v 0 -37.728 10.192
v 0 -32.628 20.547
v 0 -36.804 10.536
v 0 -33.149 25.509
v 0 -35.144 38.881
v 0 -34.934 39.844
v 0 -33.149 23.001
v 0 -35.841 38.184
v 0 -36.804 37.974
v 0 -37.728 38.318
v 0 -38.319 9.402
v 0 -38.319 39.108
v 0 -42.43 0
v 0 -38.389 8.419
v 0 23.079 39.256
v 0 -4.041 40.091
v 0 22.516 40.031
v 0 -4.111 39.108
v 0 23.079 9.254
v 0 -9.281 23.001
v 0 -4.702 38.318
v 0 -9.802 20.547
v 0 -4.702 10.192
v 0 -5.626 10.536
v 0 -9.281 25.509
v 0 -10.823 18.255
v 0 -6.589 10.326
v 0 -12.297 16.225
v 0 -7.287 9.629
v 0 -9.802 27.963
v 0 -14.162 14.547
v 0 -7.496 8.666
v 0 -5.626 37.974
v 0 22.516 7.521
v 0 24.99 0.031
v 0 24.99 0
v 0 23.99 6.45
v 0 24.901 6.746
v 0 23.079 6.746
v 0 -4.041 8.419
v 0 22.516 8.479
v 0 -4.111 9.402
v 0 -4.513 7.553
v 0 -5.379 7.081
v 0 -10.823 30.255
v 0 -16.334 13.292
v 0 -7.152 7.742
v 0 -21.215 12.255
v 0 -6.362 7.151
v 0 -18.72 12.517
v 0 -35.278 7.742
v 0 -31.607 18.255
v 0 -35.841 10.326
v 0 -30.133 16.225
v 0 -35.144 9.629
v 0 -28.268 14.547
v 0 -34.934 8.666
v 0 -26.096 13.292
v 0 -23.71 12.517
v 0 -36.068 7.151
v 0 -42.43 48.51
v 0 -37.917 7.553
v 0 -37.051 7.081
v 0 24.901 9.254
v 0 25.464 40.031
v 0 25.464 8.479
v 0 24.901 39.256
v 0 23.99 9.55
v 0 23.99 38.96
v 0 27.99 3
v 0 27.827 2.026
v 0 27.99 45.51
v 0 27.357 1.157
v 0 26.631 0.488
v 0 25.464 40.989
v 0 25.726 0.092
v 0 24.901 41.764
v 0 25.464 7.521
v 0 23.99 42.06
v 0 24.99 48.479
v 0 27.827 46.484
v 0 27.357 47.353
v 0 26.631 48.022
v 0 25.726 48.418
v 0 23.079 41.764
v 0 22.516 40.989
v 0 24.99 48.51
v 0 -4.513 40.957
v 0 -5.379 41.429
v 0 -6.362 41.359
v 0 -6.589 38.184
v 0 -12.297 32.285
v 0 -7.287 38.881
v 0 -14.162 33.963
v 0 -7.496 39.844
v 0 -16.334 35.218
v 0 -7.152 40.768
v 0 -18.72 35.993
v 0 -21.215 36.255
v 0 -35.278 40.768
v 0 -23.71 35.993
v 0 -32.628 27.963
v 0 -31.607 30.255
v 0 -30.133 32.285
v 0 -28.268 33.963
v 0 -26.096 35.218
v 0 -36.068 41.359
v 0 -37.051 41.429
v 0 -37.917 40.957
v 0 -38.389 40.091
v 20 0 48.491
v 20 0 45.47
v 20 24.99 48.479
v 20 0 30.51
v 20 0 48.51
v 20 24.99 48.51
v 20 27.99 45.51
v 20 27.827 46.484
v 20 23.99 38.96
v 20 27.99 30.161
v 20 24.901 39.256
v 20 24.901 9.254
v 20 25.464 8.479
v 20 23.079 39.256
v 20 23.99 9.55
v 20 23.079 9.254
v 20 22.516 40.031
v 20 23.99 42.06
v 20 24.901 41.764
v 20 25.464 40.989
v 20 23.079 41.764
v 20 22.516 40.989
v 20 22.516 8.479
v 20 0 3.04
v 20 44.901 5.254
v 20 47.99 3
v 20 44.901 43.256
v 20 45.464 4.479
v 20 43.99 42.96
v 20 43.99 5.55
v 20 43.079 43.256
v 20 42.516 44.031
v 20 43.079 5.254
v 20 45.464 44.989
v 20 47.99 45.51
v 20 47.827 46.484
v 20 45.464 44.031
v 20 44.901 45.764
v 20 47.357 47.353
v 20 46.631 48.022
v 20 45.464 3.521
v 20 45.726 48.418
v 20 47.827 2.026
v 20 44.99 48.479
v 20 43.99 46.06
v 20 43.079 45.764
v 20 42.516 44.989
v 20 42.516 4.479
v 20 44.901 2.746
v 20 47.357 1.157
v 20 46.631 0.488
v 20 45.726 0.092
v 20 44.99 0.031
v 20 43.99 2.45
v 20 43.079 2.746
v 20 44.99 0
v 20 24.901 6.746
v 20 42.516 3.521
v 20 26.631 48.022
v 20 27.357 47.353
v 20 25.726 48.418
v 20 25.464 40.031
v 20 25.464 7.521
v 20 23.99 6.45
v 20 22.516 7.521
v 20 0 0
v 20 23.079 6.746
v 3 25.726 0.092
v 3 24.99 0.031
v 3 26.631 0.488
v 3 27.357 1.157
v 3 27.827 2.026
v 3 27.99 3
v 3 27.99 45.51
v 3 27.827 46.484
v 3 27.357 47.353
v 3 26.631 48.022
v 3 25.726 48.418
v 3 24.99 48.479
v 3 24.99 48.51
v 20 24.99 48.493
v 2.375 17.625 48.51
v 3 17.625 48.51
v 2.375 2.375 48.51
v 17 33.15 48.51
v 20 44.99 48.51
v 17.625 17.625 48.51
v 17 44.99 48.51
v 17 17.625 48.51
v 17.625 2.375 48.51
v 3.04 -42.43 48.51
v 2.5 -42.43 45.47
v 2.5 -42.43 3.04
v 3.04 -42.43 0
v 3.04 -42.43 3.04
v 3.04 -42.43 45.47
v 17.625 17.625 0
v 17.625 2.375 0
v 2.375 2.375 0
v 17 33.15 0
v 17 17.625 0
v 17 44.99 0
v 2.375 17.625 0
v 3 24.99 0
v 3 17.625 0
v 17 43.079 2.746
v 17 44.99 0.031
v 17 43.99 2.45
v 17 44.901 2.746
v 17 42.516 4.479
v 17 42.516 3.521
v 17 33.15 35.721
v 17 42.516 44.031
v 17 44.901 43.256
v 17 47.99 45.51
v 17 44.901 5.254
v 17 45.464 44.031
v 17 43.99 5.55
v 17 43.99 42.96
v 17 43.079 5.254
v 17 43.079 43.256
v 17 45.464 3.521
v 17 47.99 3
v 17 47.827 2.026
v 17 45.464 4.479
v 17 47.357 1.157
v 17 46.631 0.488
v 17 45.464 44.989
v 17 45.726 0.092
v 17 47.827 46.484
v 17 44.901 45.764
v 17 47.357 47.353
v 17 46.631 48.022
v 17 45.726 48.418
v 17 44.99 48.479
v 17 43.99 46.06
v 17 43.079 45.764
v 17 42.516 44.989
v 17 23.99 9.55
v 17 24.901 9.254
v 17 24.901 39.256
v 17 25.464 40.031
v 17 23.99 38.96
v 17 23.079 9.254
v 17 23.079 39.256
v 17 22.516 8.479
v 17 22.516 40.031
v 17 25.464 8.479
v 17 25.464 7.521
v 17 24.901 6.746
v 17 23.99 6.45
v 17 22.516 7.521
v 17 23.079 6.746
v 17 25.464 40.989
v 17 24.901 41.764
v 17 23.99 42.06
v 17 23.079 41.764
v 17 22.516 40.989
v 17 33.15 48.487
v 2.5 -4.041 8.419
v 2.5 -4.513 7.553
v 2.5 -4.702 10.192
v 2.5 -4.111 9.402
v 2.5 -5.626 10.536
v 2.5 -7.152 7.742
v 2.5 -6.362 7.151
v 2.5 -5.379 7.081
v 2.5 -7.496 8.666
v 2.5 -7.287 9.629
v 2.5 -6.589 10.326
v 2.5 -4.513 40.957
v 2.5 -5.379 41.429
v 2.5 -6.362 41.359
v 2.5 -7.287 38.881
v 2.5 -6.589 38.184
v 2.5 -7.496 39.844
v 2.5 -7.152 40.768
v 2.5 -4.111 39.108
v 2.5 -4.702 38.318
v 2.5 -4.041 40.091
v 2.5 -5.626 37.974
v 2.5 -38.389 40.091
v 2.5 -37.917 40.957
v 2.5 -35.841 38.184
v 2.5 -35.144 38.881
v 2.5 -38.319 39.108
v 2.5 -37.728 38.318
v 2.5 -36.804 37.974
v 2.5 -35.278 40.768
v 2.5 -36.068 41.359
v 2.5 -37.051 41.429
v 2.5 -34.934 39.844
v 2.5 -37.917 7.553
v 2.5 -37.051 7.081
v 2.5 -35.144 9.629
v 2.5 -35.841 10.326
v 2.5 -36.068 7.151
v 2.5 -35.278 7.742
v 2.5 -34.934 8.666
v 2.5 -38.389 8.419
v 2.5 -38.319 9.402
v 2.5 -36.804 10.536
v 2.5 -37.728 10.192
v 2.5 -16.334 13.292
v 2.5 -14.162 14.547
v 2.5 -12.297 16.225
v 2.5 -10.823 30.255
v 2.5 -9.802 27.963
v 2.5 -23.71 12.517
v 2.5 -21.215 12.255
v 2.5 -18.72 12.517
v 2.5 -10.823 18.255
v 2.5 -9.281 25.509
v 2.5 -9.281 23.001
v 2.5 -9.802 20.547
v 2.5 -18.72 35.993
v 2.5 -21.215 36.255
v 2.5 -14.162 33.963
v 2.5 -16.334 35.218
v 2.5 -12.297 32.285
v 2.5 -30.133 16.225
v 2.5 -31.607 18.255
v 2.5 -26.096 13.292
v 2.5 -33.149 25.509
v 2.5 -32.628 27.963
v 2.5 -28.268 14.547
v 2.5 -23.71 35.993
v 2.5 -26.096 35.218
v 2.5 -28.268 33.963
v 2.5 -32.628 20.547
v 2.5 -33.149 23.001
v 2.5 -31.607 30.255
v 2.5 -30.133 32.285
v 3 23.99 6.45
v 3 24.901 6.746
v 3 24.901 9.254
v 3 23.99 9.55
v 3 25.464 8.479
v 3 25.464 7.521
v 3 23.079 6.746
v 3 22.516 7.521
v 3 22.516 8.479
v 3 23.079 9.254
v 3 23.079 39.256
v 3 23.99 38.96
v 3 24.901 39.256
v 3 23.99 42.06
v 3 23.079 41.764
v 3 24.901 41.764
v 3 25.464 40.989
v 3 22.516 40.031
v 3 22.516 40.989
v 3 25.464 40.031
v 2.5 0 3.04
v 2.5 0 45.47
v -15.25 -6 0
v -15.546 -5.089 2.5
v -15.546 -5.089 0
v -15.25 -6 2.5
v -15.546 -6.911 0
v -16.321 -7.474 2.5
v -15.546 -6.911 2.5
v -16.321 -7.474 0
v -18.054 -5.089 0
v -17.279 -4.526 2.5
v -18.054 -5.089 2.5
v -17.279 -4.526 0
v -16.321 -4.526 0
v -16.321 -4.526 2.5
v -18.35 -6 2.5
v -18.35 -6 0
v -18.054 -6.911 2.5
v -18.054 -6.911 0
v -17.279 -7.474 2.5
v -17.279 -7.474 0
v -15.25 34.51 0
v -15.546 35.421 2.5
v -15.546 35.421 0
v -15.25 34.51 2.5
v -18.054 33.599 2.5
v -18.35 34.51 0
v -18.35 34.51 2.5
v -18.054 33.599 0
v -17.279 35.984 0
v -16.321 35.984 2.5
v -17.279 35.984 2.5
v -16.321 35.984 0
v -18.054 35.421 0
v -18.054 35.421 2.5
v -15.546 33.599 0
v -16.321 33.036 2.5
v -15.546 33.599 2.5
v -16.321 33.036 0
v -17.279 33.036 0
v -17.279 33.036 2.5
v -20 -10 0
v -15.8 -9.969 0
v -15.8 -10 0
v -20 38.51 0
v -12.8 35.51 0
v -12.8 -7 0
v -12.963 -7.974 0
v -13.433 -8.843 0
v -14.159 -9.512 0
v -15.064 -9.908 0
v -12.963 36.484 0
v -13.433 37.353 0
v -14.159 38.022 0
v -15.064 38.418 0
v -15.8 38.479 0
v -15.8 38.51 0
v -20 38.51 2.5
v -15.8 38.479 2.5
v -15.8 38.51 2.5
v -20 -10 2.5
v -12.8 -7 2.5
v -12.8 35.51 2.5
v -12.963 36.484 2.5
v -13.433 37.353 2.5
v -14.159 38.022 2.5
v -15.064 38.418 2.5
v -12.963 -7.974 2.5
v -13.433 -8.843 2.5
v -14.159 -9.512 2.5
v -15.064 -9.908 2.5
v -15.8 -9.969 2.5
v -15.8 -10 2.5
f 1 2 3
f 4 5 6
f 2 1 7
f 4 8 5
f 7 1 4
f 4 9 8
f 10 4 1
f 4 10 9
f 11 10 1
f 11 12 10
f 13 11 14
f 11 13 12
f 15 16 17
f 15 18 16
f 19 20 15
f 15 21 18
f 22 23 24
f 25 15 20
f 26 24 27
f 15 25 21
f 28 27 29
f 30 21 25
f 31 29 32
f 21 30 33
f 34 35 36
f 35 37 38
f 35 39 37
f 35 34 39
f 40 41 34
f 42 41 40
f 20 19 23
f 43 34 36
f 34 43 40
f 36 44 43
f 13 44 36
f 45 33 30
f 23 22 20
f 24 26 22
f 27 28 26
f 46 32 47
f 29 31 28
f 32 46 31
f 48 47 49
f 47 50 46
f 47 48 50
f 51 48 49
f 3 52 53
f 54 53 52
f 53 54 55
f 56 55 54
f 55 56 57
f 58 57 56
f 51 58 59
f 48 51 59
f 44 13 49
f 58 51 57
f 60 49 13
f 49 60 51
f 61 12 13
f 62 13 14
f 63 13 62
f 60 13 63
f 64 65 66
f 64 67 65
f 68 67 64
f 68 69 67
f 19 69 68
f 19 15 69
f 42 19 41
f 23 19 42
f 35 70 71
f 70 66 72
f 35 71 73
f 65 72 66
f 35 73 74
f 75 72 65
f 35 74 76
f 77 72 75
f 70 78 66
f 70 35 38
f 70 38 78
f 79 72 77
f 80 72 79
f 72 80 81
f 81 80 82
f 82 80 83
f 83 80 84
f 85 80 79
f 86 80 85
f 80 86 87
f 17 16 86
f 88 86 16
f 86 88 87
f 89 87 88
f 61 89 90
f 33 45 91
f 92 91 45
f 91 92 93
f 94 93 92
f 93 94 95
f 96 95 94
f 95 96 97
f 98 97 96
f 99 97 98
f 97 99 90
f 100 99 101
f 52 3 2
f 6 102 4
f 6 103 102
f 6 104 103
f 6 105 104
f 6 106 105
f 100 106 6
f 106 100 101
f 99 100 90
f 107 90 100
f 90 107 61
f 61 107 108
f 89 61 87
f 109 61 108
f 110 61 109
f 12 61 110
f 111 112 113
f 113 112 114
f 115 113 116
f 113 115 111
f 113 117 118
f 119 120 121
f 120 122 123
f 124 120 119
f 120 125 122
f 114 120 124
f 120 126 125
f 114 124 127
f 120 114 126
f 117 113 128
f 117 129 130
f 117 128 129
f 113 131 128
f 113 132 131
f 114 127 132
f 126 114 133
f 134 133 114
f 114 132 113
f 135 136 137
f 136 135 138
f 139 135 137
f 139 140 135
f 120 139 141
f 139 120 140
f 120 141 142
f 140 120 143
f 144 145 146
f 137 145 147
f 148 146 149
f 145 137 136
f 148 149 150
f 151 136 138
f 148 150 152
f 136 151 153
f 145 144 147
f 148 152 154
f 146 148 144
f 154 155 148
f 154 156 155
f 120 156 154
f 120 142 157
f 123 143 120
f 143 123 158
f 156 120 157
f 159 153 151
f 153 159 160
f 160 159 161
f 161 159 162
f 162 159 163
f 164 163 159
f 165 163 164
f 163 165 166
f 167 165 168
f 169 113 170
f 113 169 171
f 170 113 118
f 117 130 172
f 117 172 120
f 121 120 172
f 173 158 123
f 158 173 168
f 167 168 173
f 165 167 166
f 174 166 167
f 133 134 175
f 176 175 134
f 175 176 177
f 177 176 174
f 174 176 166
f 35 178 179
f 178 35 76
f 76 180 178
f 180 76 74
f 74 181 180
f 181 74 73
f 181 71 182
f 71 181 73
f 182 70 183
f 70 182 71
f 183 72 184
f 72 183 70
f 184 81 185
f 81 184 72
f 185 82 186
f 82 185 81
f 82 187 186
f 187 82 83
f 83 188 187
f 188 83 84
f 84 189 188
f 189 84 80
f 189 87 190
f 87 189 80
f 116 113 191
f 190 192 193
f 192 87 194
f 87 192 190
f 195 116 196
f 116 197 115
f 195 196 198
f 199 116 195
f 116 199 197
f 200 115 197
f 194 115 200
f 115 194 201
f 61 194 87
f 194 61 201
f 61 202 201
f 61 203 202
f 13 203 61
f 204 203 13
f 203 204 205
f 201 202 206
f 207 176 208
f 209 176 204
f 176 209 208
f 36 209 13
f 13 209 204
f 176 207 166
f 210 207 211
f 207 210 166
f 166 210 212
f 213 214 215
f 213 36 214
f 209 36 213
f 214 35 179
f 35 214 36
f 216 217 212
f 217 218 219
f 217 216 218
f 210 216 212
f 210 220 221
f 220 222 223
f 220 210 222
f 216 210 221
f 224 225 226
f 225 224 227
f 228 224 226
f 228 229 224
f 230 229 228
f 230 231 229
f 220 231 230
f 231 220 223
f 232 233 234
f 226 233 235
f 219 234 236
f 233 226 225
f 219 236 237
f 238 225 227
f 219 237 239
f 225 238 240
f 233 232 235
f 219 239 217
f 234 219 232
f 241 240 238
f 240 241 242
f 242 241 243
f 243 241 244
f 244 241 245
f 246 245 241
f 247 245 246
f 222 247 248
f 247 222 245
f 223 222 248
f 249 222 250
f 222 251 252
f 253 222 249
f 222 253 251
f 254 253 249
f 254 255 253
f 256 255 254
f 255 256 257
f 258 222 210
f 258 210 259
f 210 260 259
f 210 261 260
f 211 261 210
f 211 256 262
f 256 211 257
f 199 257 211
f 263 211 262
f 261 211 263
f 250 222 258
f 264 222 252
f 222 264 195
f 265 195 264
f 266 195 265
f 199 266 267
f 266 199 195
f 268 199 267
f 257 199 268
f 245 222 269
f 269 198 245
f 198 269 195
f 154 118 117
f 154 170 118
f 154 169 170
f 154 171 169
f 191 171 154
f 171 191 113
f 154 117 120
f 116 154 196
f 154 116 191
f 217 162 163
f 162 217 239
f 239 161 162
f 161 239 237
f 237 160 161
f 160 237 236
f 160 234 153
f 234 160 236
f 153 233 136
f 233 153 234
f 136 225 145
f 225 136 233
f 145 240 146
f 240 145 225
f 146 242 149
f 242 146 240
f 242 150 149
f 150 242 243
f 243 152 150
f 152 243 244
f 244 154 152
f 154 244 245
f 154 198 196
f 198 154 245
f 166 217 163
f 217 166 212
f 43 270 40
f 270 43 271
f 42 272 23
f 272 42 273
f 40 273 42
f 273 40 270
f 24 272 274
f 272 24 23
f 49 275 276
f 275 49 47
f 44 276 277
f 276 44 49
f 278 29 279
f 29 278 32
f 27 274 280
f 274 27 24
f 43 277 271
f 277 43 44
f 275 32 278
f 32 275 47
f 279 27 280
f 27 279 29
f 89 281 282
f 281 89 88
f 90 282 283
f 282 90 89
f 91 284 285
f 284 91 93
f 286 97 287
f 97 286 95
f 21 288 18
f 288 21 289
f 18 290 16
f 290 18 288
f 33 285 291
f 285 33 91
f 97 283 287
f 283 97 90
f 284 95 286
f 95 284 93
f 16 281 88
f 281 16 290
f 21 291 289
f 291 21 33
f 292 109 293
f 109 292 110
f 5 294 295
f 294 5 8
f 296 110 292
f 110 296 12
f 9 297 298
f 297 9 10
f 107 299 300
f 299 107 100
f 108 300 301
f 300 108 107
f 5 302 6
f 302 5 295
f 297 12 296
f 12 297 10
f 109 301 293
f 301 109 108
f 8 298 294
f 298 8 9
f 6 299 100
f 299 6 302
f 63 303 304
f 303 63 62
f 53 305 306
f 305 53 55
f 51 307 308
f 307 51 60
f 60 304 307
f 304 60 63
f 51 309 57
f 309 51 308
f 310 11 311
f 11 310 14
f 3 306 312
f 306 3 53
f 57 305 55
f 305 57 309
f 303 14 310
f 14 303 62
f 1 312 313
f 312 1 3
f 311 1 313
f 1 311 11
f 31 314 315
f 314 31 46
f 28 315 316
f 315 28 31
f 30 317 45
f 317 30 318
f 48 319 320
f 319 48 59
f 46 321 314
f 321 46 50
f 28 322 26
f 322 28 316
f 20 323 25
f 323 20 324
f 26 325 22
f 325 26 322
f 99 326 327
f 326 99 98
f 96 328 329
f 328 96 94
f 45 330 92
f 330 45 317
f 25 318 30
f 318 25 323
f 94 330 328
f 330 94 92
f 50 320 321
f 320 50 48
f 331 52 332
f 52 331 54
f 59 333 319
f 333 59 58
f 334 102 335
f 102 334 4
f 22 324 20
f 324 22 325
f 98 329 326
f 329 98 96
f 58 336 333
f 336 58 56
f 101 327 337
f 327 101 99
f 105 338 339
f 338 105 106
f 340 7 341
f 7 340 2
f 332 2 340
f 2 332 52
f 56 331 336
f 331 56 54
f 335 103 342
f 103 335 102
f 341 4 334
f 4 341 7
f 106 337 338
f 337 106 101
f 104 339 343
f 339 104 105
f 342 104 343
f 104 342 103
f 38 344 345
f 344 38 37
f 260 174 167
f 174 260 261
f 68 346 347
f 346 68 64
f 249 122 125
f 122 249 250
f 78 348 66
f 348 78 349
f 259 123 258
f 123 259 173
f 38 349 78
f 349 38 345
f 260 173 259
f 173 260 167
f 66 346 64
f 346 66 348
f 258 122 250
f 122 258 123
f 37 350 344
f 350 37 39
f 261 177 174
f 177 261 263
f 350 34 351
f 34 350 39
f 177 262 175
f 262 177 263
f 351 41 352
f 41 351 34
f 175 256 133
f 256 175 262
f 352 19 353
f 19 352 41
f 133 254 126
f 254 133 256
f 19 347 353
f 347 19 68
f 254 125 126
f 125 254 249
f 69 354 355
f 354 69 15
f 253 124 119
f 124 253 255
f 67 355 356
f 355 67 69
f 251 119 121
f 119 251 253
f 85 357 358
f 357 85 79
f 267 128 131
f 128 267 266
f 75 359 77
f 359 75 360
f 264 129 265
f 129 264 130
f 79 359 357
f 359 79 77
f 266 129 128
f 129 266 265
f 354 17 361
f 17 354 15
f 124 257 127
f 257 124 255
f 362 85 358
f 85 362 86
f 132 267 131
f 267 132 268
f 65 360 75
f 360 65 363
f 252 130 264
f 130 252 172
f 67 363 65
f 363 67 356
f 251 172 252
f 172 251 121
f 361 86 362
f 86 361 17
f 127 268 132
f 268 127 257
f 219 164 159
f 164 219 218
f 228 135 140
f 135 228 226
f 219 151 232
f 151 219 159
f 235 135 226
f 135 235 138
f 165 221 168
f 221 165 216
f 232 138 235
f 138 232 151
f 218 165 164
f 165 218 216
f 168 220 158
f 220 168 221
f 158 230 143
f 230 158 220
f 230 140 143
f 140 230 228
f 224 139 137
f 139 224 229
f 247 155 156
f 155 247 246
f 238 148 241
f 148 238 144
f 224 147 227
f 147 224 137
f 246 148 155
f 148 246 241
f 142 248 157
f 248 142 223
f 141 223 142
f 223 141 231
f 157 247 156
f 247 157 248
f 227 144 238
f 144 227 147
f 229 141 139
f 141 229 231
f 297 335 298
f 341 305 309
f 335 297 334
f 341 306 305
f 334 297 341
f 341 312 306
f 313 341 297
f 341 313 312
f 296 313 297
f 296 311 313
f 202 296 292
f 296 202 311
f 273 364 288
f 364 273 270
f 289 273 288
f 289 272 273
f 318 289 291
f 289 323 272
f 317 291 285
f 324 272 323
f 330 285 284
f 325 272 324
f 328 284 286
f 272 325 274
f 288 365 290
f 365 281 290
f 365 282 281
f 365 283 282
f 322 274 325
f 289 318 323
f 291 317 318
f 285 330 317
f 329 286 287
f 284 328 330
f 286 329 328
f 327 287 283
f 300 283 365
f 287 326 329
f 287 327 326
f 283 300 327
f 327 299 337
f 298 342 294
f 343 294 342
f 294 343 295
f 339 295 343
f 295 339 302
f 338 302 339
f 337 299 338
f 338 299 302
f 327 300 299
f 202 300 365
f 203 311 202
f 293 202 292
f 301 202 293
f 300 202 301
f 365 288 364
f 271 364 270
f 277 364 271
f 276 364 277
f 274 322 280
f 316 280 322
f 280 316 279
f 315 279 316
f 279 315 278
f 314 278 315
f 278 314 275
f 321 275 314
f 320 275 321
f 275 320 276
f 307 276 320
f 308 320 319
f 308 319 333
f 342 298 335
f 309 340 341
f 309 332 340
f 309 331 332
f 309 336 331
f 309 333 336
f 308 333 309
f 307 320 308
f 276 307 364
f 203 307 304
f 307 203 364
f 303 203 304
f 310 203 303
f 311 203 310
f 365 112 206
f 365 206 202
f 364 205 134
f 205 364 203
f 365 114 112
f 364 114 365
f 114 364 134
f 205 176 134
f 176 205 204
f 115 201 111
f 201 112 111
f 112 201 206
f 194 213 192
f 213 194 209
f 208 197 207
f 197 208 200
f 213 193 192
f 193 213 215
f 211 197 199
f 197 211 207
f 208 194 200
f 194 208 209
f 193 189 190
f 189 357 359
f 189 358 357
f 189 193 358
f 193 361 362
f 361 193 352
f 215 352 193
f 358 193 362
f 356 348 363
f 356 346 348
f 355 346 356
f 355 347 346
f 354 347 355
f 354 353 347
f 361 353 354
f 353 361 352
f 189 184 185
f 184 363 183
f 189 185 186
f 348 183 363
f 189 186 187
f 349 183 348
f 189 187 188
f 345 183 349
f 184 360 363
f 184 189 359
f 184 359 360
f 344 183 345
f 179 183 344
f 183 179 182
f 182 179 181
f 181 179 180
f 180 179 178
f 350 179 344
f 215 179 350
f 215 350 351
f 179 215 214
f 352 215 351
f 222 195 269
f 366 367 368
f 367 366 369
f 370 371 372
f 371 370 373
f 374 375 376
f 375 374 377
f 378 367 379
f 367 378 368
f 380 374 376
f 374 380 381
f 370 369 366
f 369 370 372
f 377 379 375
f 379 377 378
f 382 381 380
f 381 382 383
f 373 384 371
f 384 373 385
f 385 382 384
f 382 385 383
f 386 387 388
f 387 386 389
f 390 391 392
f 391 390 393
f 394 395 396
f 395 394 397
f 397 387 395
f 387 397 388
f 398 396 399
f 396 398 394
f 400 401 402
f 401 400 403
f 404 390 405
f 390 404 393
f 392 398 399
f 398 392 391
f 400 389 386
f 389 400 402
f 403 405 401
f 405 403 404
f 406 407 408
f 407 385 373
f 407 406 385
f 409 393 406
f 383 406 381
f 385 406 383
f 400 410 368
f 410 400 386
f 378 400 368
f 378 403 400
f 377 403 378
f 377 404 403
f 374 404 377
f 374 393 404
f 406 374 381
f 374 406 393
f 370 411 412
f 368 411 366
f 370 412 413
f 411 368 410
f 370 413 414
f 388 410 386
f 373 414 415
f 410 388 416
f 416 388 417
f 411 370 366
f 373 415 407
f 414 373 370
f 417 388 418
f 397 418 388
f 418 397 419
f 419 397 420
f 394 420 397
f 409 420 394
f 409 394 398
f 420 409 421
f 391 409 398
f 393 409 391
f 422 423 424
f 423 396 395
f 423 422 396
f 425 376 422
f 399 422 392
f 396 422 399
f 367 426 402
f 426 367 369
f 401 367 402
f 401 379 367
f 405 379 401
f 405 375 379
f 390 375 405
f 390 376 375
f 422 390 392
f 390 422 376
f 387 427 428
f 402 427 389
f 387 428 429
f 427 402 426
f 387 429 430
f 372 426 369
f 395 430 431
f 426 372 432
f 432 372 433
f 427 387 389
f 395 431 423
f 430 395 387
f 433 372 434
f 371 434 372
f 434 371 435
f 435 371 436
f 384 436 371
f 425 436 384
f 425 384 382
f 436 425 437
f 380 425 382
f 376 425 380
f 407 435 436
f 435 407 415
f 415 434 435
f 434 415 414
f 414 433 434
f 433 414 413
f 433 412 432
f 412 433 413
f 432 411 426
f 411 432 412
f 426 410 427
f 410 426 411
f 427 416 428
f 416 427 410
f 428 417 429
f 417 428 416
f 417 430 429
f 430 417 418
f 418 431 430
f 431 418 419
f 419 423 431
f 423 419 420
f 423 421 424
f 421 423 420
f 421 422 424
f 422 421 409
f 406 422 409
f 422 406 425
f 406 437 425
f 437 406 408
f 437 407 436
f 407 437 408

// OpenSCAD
// file: util.scad
include <parameters.scad>

//!rounded_cube([40,61,42], 8, center=true);
module rounded_cube(v, r, center=false){
  fn = 32;
  v = (v[0] == undef) ? [v, v, v] : v;
  obj_translate = center ?
    [-(v[0] / 2), -(v[1] / 2),	-(v[2] / 2)] : [0, 0, 0];
  d = 2*r;

  //!frame();
  module frame(){
    xy_corners = [[0, 0, 0], [v[0]-d, 0, 0], [v[0]-d, v[1]-d, 0], [0, v[1]-d, 0]];
    translate([r,r,r])
    for(i=[0:3]){
      l = i%2 == 0 ? v[0] - d : v[1] - d;
      translate(xy_corners[i]){
        rotate([0,0,90*i]){
          cylinder(r=r, h=v[2]-d, $fn = fn);
          for(j=[0,v[2]-d]){
            translate([0,0,j]){
              sphere(r, $fn = fn);
              rotate([0,90,0])
                rotate([0,0,0.5*360/fn])
                cylinder(r=r, h=l, $fn = fn);
            }
          }
        }
      }
    }
  }

  //!core();
  module core(){
    translate([r, r, 0]){
      cube([v[0] - d, v[1] - d, v[2]]);
    }
    translate([r, 0, r]){
      cube([v[0] - d, v[1], v[2] - d]);
    }
    translate([0, r, r]){
      cube([v[0], v[1] - d, v[2] - d]);
    }
  }

  translate(obj_translate){
    union(){
      core();
      frame();
    }
  }
}

//rounded_cube2([20,30,2], 2);
module rounded_cube2(v, r){
  $fs = 1;
  union(){
    translate([r,0,0])           cube([v[0]-2*r, v[1]    , v[2]]);
    translate([0,r,0])           cube([v[0]    , v[1]-2*r, v[2]]);
    translate([r,r,0])           cylinder(h=v[2], r=r);
    translate([v[0]-r,r,0])      cylinder(h=v[2], r=r);
    translate([v[0]-r,v[1]-r,0]) cylinder(h=v[2], r=r);
    translate([r,v[1]-r,0])      cylinder(h=v[2], r=r);
  }
}

module rounded_square(v, r){
  union(){
    translate([r,0])           square([v[0]-2*r, v[1]]);
    translate([0,r])           square([v[0], v[1]-2*r]);
    translate([r,r])           circle(r);
    translate([v[0]-r,r])      circle(r);
    translate([v[0]-r,v[1]-r]) circle(r);
    translate([r,v[1]-r])      circle(r);
  }
}


module beam(l, standing = false){
  v = standing ? [Beam_width, Beam_width, l] : [l, Beam_width, Beam_width];
  cube(v);
}

module fat_beam(l, standing = false){
  v = standing ? [Fat_beam_width, Fat_beam_width, l] : [l, Fat_beam_width, Fat_beam_width];
  cube(v);
}

//standing_ls_tri(10, 20);
module standing_ls_tri(l, h){
  difference(){
  cube([l,l,h]);
  translate([l,0,0])
    rotate([0,0,45])
    translate([0,0,-1])
    cube([l*sqrt(2),l*sqrt(2),h+2]);
  }
}

// Functions for use with sweep
function my_square(v) = [[-v[0]/2, -v[1]/2],
                         [ v[0]/2, -v[1]/2],
                         [ v[0]/2,  v[1]/2],
                         [-v[0]/2,  v[1]/2]];

function my_rounded_square(v, r, step=7.5) = [
  for (i=[0:step:360])
    i < 90 ?
    [r,r] - r*[cos(i), sin(i)] :
    i < 180 ?
    [v[0]-r,r] - r*[cos(i), sin(i)] :
    i < 270 ?
    [v[0]-r,v[1]-r] - r*[cos(i), sin(i)] :
    [r,v[1]-r] - r*[cos(i), sin(i)]];

function my_rounded_eqtri(l, r, step=3) = [
  for (i=[-30:step:360-30.01])
    (i < 120 - 30) ?
    [r*sqrt(3),r] - r*[cos(i), sin(i)] :
    (i < 240 - 30) ?
    [l-r*sqrt(3),r] - r*[cos(i), sin(i)] :
    [l/2,sqrt(3)*l/2-r*2] - r*[cos(i), sin(i)]];

module rounded_2corner(v, r){
  v = (v[0] == undef) ? [v, v] : v;
  square([v[0]-r,v[1]]);
  translate([0,r])
    square([v[0],v[1]-2*r]);
  translate([v[0]-r, r])
    circle(r=r,$fs = 1);
  translate([v[0]-r, v[1]-r])
    circle(r=r,$fs = 1);
}

module Nema17_screw_translate(corners){
  for (i=[0:90:90*corners - 1]){
    rotate([0,0,i+45]) translate([Nema17_screw_hole_width/2,0,0]) children();
  }
}

module Nema17_screw_holes(d, h, corners=4){
  Nema17_screw_translate(corners) cylinder(r=d/2,h=h);
}

module centered_u_groove_bearing(){
  translate([1.5,-32,0])
    import("U-groove_bearing.stl");
}

// Looks best with $fn = n*8
module round_end(v){
  v = (v[0] == undef) ? [v, v] : v;
  cube([v[0]-v[1]/2, v[1], v[2]]);
  translate([v[0]-v[1]/2, v[1]/2,0])
    cylinder(d=v[1], h=v[2]);
}
// file: sweep.scad
// sweep.scad
//
// This code is copied from
// https://github.com/openscad/list-comprehension-demos
// and
// https://github.com/openscad/scad-utils
// to make hangprinter repo self-contained
// It was included in order to make the worm drive parametric
// In future OpenSCAD (or other script CAD programs)
// worm drives should be will be more easily constructed without
// this user space defined sweep operation.
// See OpenSCAD discussion at:
// https://github.com/openscad/openscad/issues/114

// Look into files
// lists.scad
// X transformations.scad
// linalg.scad
// se3.scad
// so3.scad


// Include modules and fcts:

/// linalg.scad
function vec3(p) = len(p) < 3 ? concat(p,0) : p;
function vec4(p) = let (v3=vec3(p)) len(v3) < 4 ? concat(v3,1) : v3;
function take3(v) = [v[0],v[1],v[2]];
function tail3(v) = [v[3],v[4],v[5]];
function construct_Rt(R,t) = [concat(R[0],t[0]),concat(R[1],t[1]),concat(R[2],t[2]),[0,0,0,1]];

/// so3.scad

function se3_exp_2(t,w) = se3_exp_2_0(t,w,w*w);
function se3_exp_2_0(t,w,theta_sq) =
se3_exp_23(
	so3_exp_2(theta_sq),
	C = (1.0 - theta_sq/20) / 6,
	t=t,w=w);

// Taylor series expansions close to 0
function so3_exp_1(theta_sq) = [
	1 - 1/6*theta_sq,
	0.5
];

function rodrigues_so3_exp(w, A, B) = [
  [1.0 - B*(w[1]*w[1] + w[2]*w[2]), B*(w[0]*w[1]) - A*w[2],          B*(w[0]*w[2]) + A*w[1]],
  [B*(w[0]*w[1]) + A*w[2],          1.0 - B*(w[0]*w[0] + w[2]*w[2]), B*(w[1]*w[2]) - A*w[0]],
  [B*(w[0]*w[2]) - A*w[1],          B*(w[1]*w[2]) + A*w[0],          1.0 - B*(w[0]*w[0] + w[1]*w[1])]
];

function so3_exp_3_0(theta_deg, inv_theta) = [
	sin(theta_deg) * inv_theta,
	(1 - cos(theta_deg)) * (inv_theta * inv_theta)
];

/// se3.scad
function combine_se3_exp(w, ABt) = construct_Rt(rodrigues_so3_exp(w, ABt[0], ABt[1]), ABt[2]);
function se3_exp_1(t,w) = concat(
	so3_exp_1(w*w),
	[t + 0.5 * cross(w,t)]
);

function se3_exp_3(t,w) = se3_exp_3_0(t,w,sqrt(w*w)*180/PI,1/sqrt(w*w));

function se3_exp_23(AB,C,t,w) =
[AB[0], AB[1], t + AB[1] * cross(w,t) + C * cross(w,cross(w,t)) ];

function se3_exp_3_0(t,w,theta_deg,inv_theta) =
se3_exp_23(
	so3_exp_3_0(theta_deg = theta_deg, inv_theta = inv_theta),
	C = (1 - sin(theta_deg) * inv_theta) * (inv_theta * inv_theta),
t=t,w=w);

function se3_exp(mu) = se3_exp_0(t=take3(mu),w=tail3(mu)/180*PI);

function se3_exp_0(t,w) =
combine_se3_exp(w,
// Evaluate by Taylor expansion when near 0
	w*w < 1e-8
	? se3_exp_1(t,w)
	: w*w < 1e-6
	  ? se3_exp_2(t,w)
	  : se3_exp_3(t,w)
);


/// lists.scad
/*!
  Flattens a list one level:

  flatten([[0,1],[2,3]]) => [0,1,2,3]
*/
function flatten(list) = [ for (i = list, v = i) v ];
/*!
  Extracts a subarray from index begin (inclusive) to end (exclusive)

  subarray([1,2,3,4], 1, 2) => [2,3]
*/
function subarray(list,begin=0,end=-1) = [
    let(end = end < 0 ? len(list) : end)
      for (i = [begin : 1 : end-1])
        list[i]
];

/// transformations.scad
//********* Create modifying matrices ***************//
/*!
  Creates a rotation matrix

  xyz = euler angles = rz * ry * rx
  axis = rotation_axis * rotation_angle
*/
function rotation(xyz=undef, axis=undef) =
	xyz != undef && axis != undef ? undef :
	xyz == undef  ? se3_exp([0,0,0,axis[0],axis[1],axis[2]]) :
	len(xyz) == undef ? rotation(axis=[0,0,xyz]) :
	(len(xyz) >= 3 ? rotation(axis=[0,0,xyz[2]]) : identity4()) *
	(len(xyz) >= 2 ? rotation(axis=[0,xyz[1],0]) : identity4()) *
(len(xyz) >= 1 ? rotation(axis=[xyz[0],0,0]) : identity4());

/*!
  Creates a scaling matrix
*/
function scaling(v) = [
	[v[0],0,0,0],
	[0,v[1],0,0],
	[0,0,v[2],0],
	[0,0,0,1],
];

/*!
  Creates a translation matrix
*/
function translation(v) = [
	[1,0,0,v[0]],
	[0,1,0,v[1]],
	[0,0,1,v[2]],
	[0,0,0,1],
];


function project(x) = subarray(x,end=len(x)-1) / x[len(x)-1];

function transform(m, list) = [for (p=list) project(m * vec4(p))];

function to_3d(list) = [ for(v = list) vec3(v) ];

module sweep(shape, path_transforms, closed=false) {

    pathlen = len(path_transforms);
    segments = pathlen + (closed ? 0 : -1);
    shape3d = to_3d(shape);

    function sweep_points() =
      flatten([for (i=[0:pathlen-1])
        transform(path_transforms[i], shape3d)]);

    function loop_faces() = [let (facets=len(shape3d))
        for(s=[0:segments-1], i=[0:facets-1])
          [(s%pathlen) * facets + i,
           (s%pathlen) * facets + (i + 1) % facets,
           ((s + 1) % pathlen) * facets + (i + 1) % facets,
           ((s + 1) % pathlen) * facets + i]];

    bottom_cap = closed ? [] : [[for (i=[len(shape3d)-1:-1:0]) i]];
    top_cap = closed ? [] : [
      [for (i=[0:len(shape3d)-1])
        i+len(shape3d)*(pathlen-1)]];
    polyhedron(points = sweep_points(),
               faces  = concat(loop_faces(),
                               bottom_cap,
                               top_cap),
               convexity=5);
}
// file: parameters.scad
// Parameters shared between modules
Base_th = 2.8;
Beam_width = 15;
Wiggle = 0.25;
Fat_beam_width = Beam_width + Wiggle;
Beam_length = 400;
Wall_th = 2.5;
Min_beam_width = 12.5;
Max_beam_width = 17.5;
Zip_th = 2;
Zip_h = Zip_th + Max_beam_width - Min_beam_width;
Zip_w = 5.0;
Nema17_cube_width          = 42.43;
Nema17_screw_hole_width    = 43.74; // Opposite corner screws
Nema17_ring_diameter       = 22;
Nema17_cube_height         = 39.36;
Nema17_shaft_height        = 63.65;
Nema17_ring_height         = 2;
Nema17_shaft_radius        = 5/2;
b608_outer_dia = 22.2;
b608_width = 7.05;
Gap_between_sandwich_and_plate = 1.5 + Base_th; // 1.5 mm for wiggle
Motor_bracket_flerp_r = 6;
Motor_bracket_flerp = 14;
Motor_bracket_cw = Nema17_cube_width + 6;
Motor_bracket_att_ang = 50;
Mounting_screw_d = 4.5;
Mounting_screw_head_d = 14;
Spool_outer_wall_th = 4;

// Corner clamp parameters
Cc_l1 = (Fat_beam_width+2*Wall_th)*2*sqrt(3);
Cc_rad_b = 4;
Cc_action_point_from_mid = Cc_l1/sqrt(3)-2*Cc_rad_b-1.3;  // 1.3 chosen arbitrarily
Cc_plastic_length = sqrt(Cc_action_point_from_mid*Cc_action_point_from_mid
                       - (Cc_action_point_from_mid/2)*(Cc_action_point_from_mid/2));

// The distance between the two action points on the mover
Sidelength = Beam_length + 2*Cc_plastic_length;

/////// Layout parameters ////////////
Ext_sidelength = Sidelength+77;
Additional_added_plate_side_length = 10;
Yshift_top_plate = -25;

/////// Gear parameters ////////////
Circular_pitch = 262;
Motor_teeth = 10;
Gear_height = 21.4-3;
Motor_pitch                      = (Motor_teeth*Circular_pitch/360);
Motor_pitch_diametrial           = Motor_teeth/(2*Motor_pitch);
Motor_outer_radius               = Motor_pitch + 1/Motor_pitch_diametrial;
Spool_teeth = 100;
Spool_r = 55;
Spool_height = 8;
Spool_pitch                      = (Spool_teeth*Circular_pitch/360);
Spool_pitch_diametrial           = Spool_teeth/(2*Spool_pitch);
Spool_outer_radius               = Spool_pitch + 1/Spool_pitch_diametrial;
Torx_depth = 5;
Motor_bracket_depth = Gear_height+1+7+Nema17_ring_height+1+Gap_between_sandwich_and_plate;
Spool_core_flerp0 = 16+3;

/////// Lineroller parameters ////////////
b623_width  = 4;
b623_bore_r = 3/2;
b623_vgroove_big_r = 12/2;
b623_vgroove_small_r = 10/2;
Lineroller_wall_th = 2.3;


// The height that lineroller_ABC_winch will have if we include the bearing
Tower_h = Gap_between_sandwich_and_plate+Gear_height
         + Spool_height/2
         + b623_vgroove_small_r
         + b623_vgroove_big_r;
Bearing_wall = 1;
Depth_of_lineroller_tower = b623_width + 2*Wall_th; // 9
Depth_of_lineroller_base = Depth_of_lineroller_tower + 9; // 18
Ptfe_r = 2.1;
Lineroller_base_r = Depth_of_lineroller_base/2-1*(Ptfe_r+2);
Screw_h = 2;
Screw_head_h = 2;
Spool_center_bearing_wall_th = 5;
Idler_block_bearing_center_to_center = 15;

//// Lineroller anchor parameters /////

Bearing_0_x = 2*b623_vgroove_big_r+Bearing_wall+5.3;
Bearing_1_x = b623_vgroove_small_r-0.9;
Move_tower = -12.2;
Lower_bearing_z = 13;
Higher_bearing_z = Lower_bearing_z + Idler_block_bearing_center_to_center;
// main file
include <parameters.scad>
use <sweep.scad>
use <util.scad>

//%prev_art();
module prev_art(){
  import("../stl/extruder_holder.stl");
}

cw = Nema17_cube_width; // For brevity...
flerp = 7.2;
wiggle = 0.54;
r_little = 3;
block_height = Beam_width+2*Wall_th;
block_depth = cw + 2*wiggle + 2*Wall_th;
cable_clamp_o = 4;
cable_clamp_ex_l = 20;

extruder_holder();
module extruder_holder(){

  edges = 0.625;
  opening_width = Fat_beam_width - 2*edges;
  //main_block();
  module main_block(){
    translate([0,-cw,0])
      rotate([90,0,90])
      linear_extrude(height=block_height, slices=1)
      rounded_2corner([cw + wiggle + 2*Wall_th + Fat_beam_width + flerp,
          block_depth],
          r_little);
    translate([(Fat_beam_width+Beam_width)/2+Wall_th-edges,0,0])
    rotate([90,0,90])
      linear_extrude(height=Wall_th+edges-(Fat_beam_width-Beam_width)/2, slices=1)
      rounded_2corner([wiggle + 2*Wall_th + Fat_beam_width + flerp + cable_clamp_ex_l,
          block_depth],
          r_little);
  }
  ex_l = cw*2/sqrt(3);


  difference(){
    main_block();
    translate([Wall_th,-cw-1,Wall_th+wiggle])
      cube([cw,cw+1,cw]);
    translate([Beam_width+2*Wall_th,0,0])
      rotate([0,0,-atan((Beam_width+Wall_th-wiggle)/(cw))])
      translate([0,-ex_l,-1])
      cube([cw,ex_l,cw+2*(wiggle+Wall_th+1)]);
    translate([0,0,Wall_th+wiggle])
      rotate([0,90,0])
      translate([-cw/2, -cw/2, -1]){
        Nema17_screw_holes(3.5, Wall_th+2, $fs=1);
        cylinder(d=Nema17_ring_diameter+2, h=Wall_th+2, $fs=1);
      }
    translate([Wall_th-Wiggle/2, Wall_th-Wiggle/2, -1])
      fat_beam(block_depth+2, standing=true);
    translate([(Wall_th-Wiggle/2)+opening_width/2+edges, Fat_beam_width/2+Wall_th+flerp+1, -1])
      cube([opening_width, Fat_beam_width+2*flerp, 2*block_depth+3], center=true);
    // Holes for clamping screws
    for(i=[8,block_depth-8])
      translate([0,Fat_beam_width+2*Wall_th+wiggle+flerp - 4,i])
        rotate([0,90,0]){
          translate([0,0,-1])
            cylinder(d=3.1, h=block_height+2, $fs=1);
        }
    // For cable holder screws
    for(i=[cable_clamp_o,block_depth-cable_clamp_o])
      translate([0,Fat_beam_width+2*Wall_th+wiggle+flerp+cable_clamp_ex_l - 4,i])
        rotate([0,90,0])
        cylinder(d=3.1, h=4*Beam_width, $fs=1, center=true);
  }
}

// Use this part to screw tight
translate([-20,-10,0])
Flat_cable_clamper();
module Flat_cable_clamper(){
  difference(){
    linear_extrude(height=Wall_th, slices=1)
      rounded_2corner([flerp,
          block_depth],
          r_little);
    for(i=[cable_clamp_o,block_depth-cable_clamp_o])
      translate([flerp-4,i,0])
        cylinder(d=3.1, h=block_height+2, $fs=1, center=true);
  }
}

module Placed_cable_clamper(){
  translate([-6,wiggle + 2*Wall_th + Fat_beam_width + cable_clamp_ex_l,0])
    rotate([90,0,90])
    Flat_cable_clamper();
}
